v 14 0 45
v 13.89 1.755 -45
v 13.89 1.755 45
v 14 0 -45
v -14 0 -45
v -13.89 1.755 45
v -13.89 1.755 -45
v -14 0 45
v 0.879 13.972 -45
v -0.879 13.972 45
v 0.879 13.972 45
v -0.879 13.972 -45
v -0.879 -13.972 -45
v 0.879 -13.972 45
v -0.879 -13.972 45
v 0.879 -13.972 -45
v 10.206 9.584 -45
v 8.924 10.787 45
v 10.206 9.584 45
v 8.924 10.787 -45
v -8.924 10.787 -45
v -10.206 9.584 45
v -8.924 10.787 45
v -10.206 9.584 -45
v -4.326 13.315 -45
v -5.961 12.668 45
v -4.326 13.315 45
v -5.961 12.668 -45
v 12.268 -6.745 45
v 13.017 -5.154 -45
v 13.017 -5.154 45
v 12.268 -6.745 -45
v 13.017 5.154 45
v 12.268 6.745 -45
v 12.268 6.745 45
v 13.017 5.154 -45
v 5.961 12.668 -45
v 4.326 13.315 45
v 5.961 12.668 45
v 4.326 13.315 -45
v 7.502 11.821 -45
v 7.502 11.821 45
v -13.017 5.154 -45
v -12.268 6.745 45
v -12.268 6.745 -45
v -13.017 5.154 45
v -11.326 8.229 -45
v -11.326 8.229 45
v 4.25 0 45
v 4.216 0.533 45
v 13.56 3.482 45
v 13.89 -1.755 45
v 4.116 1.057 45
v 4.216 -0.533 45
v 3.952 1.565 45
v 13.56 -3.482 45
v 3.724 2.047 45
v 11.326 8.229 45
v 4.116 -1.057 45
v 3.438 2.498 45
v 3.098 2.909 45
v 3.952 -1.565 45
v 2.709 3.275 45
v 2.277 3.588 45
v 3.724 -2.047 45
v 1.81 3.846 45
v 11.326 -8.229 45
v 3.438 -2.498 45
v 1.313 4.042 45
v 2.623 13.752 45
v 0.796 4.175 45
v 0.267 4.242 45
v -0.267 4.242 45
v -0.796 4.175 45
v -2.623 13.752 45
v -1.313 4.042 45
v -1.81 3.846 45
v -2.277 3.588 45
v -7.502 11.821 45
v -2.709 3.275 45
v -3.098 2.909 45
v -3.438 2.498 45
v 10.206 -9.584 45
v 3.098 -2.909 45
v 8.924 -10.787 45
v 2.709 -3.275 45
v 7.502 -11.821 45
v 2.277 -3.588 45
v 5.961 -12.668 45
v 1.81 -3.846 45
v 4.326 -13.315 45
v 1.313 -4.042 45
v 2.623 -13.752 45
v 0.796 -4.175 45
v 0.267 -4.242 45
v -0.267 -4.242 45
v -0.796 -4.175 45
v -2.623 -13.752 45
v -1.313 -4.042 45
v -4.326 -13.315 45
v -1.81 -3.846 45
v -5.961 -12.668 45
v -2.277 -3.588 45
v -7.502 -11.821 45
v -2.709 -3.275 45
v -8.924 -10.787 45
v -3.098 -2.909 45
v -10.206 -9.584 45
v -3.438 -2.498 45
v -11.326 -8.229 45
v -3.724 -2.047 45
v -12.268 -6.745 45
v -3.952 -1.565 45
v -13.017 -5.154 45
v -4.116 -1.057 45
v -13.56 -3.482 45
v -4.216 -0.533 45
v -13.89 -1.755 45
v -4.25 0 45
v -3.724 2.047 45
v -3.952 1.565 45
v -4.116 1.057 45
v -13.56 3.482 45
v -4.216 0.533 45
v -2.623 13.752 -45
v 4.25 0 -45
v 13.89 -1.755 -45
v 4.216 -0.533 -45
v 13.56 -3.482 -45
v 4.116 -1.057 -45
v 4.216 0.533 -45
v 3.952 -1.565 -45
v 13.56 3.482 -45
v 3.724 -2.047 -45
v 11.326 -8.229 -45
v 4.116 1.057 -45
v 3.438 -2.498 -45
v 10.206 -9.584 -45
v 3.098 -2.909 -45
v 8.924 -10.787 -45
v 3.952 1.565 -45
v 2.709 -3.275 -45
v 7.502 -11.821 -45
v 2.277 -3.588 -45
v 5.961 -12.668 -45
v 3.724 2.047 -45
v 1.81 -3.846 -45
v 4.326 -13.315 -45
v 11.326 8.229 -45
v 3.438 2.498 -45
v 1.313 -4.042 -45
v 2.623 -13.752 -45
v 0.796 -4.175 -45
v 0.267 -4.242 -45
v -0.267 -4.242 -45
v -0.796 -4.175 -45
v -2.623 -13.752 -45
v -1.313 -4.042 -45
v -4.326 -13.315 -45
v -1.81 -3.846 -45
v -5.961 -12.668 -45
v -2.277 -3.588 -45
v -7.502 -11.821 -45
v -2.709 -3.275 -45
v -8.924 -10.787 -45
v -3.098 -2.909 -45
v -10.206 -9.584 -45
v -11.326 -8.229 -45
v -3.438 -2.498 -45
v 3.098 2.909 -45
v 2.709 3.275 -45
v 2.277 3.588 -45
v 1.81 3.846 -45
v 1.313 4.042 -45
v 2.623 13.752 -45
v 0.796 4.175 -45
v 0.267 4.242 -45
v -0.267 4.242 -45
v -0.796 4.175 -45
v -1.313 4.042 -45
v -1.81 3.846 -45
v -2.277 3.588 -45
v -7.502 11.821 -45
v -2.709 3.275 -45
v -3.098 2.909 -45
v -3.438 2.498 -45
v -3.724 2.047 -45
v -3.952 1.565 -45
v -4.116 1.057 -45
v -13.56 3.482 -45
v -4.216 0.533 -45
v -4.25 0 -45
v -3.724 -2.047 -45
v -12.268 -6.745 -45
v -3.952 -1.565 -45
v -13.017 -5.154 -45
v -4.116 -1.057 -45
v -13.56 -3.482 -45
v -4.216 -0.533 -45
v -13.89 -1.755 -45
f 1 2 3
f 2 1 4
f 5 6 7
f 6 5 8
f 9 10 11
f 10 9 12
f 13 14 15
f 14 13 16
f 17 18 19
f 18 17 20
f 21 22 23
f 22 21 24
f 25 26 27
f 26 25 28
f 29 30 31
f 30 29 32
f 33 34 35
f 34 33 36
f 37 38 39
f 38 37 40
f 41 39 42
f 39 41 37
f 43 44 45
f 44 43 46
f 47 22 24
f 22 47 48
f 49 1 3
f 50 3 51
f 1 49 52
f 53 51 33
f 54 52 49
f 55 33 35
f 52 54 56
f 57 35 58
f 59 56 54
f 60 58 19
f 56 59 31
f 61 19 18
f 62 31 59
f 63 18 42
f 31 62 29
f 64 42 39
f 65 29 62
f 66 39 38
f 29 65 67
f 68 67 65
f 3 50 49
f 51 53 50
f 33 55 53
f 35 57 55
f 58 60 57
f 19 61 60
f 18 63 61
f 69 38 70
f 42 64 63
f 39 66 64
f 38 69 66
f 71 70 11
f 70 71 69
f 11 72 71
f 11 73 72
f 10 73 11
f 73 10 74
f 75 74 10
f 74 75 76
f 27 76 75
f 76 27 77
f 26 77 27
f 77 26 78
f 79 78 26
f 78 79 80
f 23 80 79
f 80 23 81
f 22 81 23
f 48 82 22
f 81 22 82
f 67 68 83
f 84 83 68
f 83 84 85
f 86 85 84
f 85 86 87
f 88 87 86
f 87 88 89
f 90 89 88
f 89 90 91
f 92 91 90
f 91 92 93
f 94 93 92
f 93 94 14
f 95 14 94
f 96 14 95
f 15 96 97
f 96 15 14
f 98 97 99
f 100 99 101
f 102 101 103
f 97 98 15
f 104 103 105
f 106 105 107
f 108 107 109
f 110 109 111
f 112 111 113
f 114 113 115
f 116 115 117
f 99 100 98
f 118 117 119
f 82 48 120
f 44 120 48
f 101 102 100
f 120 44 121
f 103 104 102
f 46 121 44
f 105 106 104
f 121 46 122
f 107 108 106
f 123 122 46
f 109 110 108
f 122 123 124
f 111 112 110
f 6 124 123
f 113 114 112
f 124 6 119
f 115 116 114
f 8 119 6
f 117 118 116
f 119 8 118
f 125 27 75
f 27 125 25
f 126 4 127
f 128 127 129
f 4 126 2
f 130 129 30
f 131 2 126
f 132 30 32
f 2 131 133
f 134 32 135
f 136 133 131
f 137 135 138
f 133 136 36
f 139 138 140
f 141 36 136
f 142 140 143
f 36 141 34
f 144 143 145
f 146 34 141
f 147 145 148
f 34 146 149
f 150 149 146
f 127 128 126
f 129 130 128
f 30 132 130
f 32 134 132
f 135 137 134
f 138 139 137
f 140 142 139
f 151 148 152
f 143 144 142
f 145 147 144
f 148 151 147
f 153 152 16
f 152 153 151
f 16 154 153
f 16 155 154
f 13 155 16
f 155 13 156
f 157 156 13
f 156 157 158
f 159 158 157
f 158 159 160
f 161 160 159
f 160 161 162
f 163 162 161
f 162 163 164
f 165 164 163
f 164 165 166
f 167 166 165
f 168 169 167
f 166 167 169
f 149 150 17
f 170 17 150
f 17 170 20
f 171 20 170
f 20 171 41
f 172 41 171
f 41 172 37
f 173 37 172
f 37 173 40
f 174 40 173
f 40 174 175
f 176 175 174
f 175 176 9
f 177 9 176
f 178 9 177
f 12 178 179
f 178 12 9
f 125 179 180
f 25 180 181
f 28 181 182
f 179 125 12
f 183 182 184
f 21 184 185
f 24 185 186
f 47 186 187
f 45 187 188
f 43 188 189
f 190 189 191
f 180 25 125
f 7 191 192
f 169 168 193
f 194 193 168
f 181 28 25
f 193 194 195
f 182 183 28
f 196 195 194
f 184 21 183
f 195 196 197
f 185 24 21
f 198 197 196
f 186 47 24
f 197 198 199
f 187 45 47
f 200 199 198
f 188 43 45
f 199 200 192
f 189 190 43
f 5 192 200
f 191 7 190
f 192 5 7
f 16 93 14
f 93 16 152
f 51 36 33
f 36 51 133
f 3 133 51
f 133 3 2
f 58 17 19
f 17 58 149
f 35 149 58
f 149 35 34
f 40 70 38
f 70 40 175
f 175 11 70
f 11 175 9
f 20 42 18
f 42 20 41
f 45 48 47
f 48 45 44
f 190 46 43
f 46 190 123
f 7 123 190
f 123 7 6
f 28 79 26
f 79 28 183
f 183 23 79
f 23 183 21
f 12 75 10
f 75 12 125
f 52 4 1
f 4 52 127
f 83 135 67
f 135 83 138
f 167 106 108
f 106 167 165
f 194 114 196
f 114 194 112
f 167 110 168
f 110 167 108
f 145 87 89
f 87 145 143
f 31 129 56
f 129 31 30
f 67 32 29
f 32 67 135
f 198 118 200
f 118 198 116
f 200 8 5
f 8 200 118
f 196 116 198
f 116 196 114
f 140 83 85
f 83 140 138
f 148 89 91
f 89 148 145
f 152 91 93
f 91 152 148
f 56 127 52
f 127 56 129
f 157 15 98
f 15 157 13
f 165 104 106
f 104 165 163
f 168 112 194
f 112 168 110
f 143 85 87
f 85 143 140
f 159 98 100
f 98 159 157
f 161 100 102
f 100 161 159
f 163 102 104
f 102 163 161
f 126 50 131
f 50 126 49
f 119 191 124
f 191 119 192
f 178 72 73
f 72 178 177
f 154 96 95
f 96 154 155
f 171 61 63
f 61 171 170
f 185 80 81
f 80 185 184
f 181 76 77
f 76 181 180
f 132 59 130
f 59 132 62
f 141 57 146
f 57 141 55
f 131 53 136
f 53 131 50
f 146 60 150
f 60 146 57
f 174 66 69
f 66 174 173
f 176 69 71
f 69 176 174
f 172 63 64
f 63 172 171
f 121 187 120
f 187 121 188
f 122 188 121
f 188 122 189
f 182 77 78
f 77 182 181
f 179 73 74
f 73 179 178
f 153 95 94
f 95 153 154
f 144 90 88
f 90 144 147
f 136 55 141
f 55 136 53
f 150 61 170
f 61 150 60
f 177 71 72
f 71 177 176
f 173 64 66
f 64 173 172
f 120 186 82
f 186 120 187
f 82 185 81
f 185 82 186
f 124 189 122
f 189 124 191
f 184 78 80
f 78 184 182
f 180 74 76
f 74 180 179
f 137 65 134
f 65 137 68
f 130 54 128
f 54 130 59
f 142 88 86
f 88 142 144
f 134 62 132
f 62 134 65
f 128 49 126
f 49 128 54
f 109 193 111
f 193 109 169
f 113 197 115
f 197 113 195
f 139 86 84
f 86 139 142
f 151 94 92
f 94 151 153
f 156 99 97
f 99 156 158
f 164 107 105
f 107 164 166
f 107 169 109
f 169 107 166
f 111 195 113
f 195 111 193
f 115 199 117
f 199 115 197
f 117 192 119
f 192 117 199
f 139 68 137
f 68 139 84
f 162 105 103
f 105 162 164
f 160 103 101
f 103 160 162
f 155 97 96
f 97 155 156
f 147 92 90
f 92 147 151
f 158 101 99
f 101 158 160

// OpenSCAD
$fn = 50;


difference() {
	union() {
		translate(v = [0, 0, -45.0000000000]) {
			cylinder(h = 90, r = 14.0000000000);
		}
	}
	union() {
		translate(v = [0, 0, -100.0000000000]) {
			cylinder(h = 200, r = 4.2500000000);
		}
	}
}
